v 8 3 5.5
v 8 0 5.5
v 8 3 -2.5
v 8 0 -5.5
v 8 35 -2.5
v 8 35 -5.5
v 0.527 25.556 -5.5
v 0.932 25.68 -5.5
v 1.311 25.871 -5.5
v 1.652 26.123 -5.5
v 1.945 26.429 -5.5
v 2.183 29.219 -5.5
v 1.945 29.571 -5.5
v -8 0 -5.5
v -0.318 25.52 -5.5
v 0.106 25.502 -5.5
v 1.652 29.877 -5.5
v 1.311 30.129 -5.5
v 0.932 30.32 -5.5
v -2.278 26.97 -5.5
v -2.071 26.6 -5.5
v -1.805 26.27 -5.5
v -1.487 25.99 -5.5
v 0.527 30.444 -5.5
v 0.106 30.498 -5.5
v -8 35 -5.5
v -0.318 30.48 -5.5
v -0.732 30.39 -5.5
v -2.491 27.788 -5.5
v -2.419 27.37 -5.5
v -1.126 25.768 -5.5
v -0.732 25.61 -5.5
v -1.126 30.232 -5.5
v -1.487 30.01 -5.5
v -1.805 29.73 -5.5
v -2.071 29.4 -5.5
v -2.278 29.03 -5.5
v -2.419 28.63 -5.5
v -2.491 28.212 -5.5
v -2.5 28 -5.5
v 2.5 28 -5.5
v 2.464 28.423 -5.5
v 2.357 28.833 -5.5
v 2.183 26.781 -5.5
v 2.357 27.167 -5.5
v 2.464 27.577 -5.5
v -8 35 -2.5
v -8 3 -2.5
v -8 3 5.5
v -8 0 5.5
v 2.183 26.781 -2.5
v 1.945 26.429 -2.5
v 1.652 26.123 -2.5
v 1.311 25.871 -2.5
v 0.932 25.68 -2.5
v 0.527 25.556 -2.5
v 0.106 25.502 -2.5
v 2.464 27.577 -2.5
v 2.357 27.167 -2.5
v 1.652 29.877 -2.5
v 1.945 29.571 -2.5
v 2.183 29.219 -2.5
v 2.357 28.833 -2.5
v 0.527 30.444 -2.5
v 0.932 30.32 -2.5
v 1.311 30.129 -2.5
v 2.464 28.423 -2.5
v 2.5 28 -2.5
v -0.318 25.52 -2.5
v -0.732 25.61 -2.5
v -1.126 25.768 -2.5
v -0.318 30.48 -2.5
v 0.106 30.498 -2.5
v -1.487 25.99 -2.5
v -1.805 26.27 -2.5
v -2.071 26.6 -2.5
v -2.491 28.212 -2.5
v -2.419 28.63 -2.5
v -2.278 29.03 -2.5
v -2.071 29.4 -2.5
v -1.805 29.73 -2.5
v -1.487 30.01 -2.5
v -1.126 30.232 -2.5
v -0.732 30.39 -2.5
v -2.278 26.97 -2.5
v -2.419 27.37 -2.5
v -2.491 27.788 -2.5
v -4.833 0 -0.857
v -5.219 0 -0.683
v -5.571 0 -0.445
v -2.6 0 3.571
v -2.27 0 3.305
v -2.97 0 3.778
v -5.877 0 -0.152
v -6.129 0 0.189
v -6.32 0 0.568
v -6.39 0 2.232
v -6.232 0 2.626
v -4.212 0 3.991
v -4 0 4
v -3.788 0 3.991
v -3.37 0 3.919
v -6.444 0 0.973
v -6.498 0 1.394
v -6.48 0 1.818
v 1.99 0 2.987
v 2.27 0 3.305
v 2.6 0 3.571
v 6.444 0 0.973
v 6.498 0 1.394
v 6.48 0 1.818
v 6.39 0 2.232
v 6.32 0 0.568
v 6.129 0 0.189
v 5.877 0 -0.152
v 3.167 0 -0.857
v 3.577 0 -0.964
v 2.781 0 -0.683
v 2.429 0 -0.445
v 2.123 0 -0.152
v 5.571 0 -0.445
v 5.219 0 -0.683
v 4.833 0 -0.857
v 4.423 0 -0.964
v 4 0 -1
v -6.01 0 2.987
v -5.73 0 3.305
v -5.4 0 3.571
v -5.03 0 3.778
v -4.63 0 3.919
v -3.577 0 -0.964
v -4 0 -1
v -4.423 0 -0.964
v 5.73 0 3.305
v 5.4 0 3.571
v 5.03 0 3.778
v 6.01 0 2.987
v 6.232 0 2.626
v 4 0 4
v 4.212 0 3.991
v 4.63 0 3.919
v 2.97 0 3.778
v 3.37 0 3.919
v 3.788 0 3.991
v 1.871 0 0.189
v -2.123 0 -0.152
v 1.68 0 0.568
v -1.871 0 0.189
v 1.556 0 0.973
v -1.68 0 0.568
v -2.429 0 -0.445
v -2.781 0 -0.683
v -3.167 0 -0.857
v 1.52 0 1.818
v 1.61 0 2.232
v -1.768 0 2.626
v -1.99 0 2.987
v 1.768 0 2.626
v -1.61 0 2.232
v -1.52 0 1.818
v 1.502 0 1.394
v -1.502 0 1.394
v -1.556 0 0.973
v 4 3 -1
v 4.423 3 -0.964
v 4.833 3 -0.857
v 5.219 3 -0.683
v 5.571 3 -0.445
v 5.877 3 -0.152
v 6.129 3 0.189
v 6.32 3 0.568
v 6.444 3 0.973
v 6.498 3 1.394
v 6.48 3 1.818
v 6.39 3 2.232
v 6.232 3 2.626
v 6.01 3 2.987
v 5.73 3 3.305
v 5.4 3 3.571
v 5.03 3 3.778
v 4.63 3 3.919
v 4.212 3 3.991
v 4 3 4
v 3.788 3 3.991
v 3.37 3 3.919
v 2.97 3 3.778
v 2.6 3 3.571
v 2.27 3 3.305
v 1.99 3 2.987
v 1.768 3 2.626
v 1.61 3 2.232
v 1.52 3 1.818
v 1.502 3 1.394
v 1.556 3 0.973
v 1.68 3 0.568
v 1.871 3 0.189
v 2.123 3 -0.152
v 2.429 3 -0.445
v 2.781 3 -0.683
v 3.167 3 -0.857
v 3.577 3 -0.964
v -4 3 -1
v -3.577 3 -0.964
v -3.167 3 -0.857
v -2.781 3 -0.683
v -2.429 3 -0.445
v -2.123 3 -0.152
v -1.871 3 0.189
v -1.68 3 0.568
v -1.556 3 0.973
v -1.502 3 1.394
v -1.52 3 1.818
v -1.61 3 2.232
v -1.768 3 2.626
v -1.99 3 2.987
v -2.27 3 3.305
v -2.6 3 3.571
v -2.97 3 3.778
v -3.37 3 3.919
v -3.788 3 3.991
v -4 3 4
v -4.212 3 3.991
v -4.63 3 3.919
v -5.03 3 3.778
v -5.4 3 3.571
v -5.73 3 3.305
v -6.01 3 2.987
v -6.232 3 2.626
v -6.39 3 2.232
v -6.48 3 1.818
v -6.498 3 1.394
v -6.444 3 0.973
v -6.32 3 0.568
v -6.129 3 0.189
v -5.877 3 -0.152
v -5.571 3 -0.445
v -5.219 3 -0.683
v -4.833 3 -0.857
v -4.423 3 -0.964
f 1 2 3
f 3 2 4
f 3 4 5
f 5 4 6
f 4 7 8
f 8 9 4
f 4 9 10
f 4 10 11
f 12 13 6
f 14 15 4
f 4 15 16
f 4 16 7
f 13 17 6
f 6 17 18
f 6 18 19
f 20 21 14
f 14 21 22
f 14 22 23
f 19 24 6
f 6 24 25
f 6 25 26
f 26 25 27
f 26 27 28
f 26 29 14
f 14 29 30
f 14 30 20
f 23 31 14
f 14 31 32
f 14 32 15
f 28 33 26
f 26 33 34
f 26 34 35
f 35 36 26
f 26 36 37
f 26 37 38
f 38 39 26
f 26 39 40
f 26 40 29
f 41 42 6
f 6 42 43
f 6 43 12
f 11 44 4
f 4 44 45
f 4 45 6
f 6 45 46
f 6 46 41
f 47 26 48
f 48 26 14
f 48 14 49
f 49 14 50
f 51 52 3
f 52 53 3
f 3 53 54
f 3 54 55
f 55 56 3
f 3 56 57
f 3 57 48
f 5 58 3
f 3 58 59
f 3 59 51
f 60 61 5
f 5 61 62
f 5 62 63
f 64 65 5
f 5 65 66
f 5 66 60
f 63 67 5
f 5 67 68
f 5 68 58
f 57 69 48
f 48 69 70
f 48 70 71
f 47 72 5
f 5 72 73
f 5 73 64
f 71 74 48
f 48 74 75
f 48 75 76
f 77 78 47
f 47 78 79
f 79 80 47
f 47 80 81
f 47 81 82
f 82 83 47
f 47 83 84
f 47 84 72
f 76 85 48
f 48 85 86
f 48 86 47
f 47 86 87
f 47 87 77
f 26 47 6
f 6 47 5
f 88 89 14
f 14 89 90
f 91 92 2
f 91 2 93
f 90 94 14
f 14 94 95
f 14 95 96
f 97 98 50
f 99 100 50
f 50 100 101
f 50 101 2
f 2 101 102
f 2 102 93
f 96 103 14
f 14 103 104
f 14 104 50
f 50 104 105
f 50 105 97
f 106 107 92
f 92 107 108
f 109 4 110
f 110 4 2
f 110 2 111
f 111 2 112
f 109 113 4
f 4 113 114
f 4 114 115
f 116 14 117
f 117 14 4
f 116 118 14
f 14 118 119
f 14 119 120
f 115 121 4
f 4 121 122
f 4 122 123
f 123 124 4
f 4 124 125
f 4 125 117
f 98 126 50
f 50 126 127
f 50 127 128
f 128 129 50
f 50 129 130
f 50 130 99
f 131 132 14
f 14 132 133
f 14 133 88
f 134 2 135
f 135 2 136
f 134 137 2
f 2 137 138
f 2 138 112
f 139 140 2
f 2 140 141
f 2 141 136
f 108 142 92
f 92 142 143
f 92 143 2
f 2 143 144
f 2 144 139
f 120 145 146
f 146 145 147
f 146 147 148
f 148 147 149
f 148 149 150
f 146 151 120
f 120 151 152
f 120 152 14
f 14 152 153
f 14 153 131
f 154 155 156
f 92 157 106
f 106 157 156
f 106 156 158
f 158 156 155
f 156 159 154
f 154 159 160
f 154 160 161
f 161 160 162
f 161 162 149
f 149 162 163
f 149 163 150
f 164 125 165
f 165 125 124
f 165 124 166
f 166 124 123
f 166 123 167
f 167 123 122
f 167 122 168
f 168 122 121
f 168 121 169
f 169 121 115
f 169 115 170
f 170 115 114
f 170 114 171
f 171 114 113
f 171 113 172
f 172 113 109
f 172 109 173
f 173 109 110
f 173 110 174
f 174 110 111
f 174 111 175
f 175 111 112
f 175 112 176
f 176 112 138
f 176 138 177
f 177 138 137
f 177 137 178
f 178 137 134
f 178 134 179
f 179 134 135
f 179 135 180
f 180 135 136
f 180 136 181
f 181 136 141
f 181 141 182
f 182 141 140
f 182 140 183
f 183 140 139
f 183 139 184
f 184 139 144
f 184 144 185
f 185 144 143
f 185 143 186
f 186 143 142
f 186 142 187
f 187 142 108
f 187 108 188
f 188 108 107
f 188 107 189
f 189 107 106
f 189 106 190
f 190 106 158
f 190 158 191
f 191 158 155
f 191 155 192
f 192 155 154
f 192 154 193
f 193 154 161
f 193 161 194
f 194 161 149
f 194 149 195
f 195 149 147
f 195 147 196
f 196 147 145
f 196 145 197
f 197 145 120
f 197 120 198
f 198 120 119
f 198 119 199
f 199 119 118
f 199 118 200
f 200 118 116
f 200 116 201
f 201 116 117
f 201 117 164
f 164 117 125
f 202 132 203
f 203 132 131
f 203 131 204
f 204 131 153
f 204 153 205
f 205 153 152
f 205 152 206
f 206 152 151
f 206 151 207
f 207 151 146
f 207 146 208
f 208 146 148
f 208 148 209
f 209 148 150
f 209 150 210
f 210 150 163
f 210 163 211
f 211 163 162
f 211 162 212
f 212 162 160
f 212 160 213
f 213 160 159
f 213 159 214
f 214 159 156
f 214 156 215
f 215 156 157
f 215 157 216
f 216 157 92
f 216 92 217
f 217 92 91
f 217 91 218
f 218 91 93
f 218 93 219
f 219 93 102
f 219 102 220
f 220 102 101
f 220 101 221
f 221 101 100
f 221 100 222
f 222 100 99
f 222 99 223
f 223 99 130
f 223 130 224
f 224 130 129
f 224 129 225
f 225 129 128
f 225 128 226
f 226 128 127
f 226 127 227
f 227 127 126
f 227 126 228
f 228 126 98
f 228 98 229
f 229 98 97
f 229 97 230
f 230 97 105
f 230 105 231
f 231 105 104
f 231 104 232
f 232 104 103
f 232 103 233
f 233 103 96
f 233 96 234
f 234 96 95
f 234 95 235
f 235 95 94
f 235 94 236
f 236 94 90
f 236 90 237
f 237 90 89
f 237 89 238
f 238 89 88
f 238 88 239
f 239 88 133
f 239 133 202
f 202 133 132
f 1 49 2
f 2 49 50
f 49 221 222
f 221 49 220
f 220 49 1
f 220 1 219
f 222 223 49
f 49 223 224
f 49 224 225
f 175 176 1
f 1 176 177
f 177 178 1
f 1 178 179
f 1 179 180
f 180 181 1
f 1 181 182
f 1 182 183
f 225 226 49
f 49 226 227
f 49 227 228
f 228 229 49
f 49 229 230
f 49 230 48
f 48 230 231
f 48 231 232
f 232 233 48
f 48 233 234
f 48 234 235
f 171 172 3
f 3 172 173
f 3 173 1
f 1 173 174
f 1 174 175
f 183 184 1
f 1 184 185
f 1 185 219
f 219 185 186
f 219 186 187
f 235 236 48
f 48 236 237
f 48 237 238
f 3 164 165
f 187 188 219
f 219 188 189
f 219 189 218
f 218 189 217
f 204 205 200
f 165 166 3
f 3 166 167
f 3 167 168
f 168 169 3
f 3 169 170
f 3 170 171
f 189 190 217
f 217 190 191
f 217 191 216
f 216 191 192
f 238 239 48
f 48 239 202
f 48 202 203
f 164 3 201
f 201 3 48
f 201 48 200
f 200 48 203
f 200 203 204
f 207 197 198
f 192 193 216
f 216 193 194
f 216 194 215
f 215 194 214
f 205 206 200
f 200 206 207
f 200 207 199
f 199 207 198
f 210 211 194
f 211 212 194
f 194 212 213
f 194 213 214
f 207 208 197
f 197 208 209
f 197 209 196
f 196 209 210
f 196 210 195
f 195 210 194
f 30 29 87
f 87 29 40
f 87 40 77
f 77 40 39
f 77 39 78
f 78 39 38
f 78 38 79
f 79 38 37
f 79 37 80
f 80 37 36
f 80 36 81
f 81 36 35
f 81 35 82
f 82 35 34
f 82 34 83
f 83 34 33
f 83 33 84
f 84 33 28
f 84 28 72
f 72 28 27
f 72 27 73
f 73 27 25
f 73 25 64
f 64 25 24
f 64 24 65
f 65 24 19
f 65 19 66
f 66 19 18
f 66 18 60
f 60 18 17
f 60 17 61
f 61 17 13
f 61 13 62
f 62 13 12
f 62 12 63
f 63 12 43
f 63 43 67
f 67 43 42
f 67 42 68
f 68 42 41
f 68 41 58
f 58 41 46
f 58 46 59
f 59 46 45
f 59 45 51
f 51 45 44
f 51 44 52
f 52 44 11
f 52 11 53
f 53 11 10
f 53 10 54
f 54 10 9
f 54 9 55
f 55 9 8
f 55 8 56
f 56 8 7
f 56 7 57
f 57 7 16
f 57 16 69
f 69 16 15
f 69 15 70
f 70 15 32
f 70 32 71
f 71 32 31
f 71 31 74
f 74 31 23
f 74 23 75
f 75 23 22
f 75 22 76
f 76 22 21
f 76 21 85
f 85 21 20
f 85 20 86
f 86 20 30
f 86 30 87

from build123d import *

# Parameters (mm, degrees)
SKETCH1_W           = 16
SKETCH1_H           = 3
BOSS_EXTRUDE1_DEPTH = 35
SKETCH1_3_W         = 16
SKETCH1_3_H         = 8
SKETCH1_3_R         = 2.5
BOSS_EXTRUDE2_DEPTH = 3
SKETCH2_R           = 2.5
CUT_EXTRUDE1_DEPTH  = 8


with BuildPart() as part:
    # Sketch1 → Boss-Extrude1 (new body)
    with BuildSketch(Plane(origin=(0, 0, 0), x_dir=(1, 0, 0), z_dir=(0, 1, 0))):
        with Locations((0, 4)):
            Rectangle(SKETCH1_W, SKETCH1_H)
    extrude(amount=BOSS_EXTRUDE1_DEPTH)

    # Sketch1<3> → Boss-Extrude2 (add)
    with BuildSketch(Plane(origin=(0, 0, 0), x_dir=(1, 0, 0), z_dir=(0, 1, 0))):
        with Locations((0, -1.5)):
            Rectangle(SKETCH1_3_W, SKETCH1_3_H)
        with Locations((-4, -1.5)):
            Circle(SKETCH1_3_R, mode=Mode.SUBTRACT)
        with Locations((4, -1.5)):
            Circle(SKETCH1_3_R, mode=Mode.SUBTRACT)
    extrude(amount=BOSS_EXTRUDE2_DEPTH)

    # Sketch2 → Cut-Extrude1 (cut)
    with BuildSketch(Plane.XY.offset(-2.5)):
        with Locations((0, 28)):
            Circle(SKETCH2_R)
    extrude(amount=-CUT_EXTRUDE1_DEPTH, mode=Mode.SUBTRACT)


solid = part.part
